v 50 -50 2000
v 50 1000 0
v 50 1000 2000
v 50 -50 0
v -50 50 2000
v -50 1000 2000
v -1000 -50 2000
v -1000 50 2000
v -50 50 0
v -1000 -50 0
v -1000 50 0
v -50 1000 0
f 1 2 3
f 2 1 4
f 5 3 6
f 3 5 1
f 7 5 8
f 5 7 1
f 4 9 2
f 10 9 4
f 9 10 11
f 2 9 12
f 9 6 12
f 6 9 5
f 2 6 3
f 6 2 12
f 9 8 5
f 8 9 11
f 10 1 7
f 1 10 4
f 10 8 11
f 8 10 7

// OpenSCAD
// file: ../../libs/basic-dims.scad
unit = 1000;

section_width = unit;
section_height = unit * 2;
section_thickness = unit * 0.1;

rt = sqrt(2);

//  -- Notes --
//  Z is UP
//  X is FORWARD (out of the screen)
// file: ../../libs/modifiers/cornerize.scad
include <../basic-dims.scad>

trim_depth = 10000;

module cornerize_trim(amount, height = section_height) {
    difference() {
        children();
        translate([-trim_depth/2, 0, 0])
        cube([trim_depth, amount, height]);
    }
}

//  Child 0 is front
//  Child 1 is side
module cornerize(front_width = section_width, front_thickness = section_thickness,
    side_width = section_width, side_thickness = section_thickness) {
    
    new_front_size = front_width - side_thickness/2;
    front_scale_amt = new_front_size / front_width;
    
    new_side_size = side_width - front_thickness/2;
    side_scale_amt = new_side_size / side_width;

    //translate([0, side_thickness/2, 0])
    //scale([1, front_scale_amt, 1])
    cornerize_trim(side_thickness/2)
    children(0);

    rotate([0, 0, 90])
    cornerize_trim(front_thickness/2)
    children(1);

    translate([-front_thickness/2, -side_thickness/2, 0])
    cube([front_thickness, side_thickness, section_height]);
}
// file: ../../libs/templates/t_wall.scad
include <../basic-dims.scad>
include <../modifiers/cornerize.scad>

module wall() {
    translate([-section_thickness/2, 0, 0])
    cube([section_thickness, section_width, section_height]);
}

module wall_corner() {
    cornerize() {
        wall();
        wall();
    }
}
// main file
include <../../libs/templates/t_wall.scad>
include <../../libs/modifiers/cornerize.scad>

cornerize() {
    wall();
    wall();
}
